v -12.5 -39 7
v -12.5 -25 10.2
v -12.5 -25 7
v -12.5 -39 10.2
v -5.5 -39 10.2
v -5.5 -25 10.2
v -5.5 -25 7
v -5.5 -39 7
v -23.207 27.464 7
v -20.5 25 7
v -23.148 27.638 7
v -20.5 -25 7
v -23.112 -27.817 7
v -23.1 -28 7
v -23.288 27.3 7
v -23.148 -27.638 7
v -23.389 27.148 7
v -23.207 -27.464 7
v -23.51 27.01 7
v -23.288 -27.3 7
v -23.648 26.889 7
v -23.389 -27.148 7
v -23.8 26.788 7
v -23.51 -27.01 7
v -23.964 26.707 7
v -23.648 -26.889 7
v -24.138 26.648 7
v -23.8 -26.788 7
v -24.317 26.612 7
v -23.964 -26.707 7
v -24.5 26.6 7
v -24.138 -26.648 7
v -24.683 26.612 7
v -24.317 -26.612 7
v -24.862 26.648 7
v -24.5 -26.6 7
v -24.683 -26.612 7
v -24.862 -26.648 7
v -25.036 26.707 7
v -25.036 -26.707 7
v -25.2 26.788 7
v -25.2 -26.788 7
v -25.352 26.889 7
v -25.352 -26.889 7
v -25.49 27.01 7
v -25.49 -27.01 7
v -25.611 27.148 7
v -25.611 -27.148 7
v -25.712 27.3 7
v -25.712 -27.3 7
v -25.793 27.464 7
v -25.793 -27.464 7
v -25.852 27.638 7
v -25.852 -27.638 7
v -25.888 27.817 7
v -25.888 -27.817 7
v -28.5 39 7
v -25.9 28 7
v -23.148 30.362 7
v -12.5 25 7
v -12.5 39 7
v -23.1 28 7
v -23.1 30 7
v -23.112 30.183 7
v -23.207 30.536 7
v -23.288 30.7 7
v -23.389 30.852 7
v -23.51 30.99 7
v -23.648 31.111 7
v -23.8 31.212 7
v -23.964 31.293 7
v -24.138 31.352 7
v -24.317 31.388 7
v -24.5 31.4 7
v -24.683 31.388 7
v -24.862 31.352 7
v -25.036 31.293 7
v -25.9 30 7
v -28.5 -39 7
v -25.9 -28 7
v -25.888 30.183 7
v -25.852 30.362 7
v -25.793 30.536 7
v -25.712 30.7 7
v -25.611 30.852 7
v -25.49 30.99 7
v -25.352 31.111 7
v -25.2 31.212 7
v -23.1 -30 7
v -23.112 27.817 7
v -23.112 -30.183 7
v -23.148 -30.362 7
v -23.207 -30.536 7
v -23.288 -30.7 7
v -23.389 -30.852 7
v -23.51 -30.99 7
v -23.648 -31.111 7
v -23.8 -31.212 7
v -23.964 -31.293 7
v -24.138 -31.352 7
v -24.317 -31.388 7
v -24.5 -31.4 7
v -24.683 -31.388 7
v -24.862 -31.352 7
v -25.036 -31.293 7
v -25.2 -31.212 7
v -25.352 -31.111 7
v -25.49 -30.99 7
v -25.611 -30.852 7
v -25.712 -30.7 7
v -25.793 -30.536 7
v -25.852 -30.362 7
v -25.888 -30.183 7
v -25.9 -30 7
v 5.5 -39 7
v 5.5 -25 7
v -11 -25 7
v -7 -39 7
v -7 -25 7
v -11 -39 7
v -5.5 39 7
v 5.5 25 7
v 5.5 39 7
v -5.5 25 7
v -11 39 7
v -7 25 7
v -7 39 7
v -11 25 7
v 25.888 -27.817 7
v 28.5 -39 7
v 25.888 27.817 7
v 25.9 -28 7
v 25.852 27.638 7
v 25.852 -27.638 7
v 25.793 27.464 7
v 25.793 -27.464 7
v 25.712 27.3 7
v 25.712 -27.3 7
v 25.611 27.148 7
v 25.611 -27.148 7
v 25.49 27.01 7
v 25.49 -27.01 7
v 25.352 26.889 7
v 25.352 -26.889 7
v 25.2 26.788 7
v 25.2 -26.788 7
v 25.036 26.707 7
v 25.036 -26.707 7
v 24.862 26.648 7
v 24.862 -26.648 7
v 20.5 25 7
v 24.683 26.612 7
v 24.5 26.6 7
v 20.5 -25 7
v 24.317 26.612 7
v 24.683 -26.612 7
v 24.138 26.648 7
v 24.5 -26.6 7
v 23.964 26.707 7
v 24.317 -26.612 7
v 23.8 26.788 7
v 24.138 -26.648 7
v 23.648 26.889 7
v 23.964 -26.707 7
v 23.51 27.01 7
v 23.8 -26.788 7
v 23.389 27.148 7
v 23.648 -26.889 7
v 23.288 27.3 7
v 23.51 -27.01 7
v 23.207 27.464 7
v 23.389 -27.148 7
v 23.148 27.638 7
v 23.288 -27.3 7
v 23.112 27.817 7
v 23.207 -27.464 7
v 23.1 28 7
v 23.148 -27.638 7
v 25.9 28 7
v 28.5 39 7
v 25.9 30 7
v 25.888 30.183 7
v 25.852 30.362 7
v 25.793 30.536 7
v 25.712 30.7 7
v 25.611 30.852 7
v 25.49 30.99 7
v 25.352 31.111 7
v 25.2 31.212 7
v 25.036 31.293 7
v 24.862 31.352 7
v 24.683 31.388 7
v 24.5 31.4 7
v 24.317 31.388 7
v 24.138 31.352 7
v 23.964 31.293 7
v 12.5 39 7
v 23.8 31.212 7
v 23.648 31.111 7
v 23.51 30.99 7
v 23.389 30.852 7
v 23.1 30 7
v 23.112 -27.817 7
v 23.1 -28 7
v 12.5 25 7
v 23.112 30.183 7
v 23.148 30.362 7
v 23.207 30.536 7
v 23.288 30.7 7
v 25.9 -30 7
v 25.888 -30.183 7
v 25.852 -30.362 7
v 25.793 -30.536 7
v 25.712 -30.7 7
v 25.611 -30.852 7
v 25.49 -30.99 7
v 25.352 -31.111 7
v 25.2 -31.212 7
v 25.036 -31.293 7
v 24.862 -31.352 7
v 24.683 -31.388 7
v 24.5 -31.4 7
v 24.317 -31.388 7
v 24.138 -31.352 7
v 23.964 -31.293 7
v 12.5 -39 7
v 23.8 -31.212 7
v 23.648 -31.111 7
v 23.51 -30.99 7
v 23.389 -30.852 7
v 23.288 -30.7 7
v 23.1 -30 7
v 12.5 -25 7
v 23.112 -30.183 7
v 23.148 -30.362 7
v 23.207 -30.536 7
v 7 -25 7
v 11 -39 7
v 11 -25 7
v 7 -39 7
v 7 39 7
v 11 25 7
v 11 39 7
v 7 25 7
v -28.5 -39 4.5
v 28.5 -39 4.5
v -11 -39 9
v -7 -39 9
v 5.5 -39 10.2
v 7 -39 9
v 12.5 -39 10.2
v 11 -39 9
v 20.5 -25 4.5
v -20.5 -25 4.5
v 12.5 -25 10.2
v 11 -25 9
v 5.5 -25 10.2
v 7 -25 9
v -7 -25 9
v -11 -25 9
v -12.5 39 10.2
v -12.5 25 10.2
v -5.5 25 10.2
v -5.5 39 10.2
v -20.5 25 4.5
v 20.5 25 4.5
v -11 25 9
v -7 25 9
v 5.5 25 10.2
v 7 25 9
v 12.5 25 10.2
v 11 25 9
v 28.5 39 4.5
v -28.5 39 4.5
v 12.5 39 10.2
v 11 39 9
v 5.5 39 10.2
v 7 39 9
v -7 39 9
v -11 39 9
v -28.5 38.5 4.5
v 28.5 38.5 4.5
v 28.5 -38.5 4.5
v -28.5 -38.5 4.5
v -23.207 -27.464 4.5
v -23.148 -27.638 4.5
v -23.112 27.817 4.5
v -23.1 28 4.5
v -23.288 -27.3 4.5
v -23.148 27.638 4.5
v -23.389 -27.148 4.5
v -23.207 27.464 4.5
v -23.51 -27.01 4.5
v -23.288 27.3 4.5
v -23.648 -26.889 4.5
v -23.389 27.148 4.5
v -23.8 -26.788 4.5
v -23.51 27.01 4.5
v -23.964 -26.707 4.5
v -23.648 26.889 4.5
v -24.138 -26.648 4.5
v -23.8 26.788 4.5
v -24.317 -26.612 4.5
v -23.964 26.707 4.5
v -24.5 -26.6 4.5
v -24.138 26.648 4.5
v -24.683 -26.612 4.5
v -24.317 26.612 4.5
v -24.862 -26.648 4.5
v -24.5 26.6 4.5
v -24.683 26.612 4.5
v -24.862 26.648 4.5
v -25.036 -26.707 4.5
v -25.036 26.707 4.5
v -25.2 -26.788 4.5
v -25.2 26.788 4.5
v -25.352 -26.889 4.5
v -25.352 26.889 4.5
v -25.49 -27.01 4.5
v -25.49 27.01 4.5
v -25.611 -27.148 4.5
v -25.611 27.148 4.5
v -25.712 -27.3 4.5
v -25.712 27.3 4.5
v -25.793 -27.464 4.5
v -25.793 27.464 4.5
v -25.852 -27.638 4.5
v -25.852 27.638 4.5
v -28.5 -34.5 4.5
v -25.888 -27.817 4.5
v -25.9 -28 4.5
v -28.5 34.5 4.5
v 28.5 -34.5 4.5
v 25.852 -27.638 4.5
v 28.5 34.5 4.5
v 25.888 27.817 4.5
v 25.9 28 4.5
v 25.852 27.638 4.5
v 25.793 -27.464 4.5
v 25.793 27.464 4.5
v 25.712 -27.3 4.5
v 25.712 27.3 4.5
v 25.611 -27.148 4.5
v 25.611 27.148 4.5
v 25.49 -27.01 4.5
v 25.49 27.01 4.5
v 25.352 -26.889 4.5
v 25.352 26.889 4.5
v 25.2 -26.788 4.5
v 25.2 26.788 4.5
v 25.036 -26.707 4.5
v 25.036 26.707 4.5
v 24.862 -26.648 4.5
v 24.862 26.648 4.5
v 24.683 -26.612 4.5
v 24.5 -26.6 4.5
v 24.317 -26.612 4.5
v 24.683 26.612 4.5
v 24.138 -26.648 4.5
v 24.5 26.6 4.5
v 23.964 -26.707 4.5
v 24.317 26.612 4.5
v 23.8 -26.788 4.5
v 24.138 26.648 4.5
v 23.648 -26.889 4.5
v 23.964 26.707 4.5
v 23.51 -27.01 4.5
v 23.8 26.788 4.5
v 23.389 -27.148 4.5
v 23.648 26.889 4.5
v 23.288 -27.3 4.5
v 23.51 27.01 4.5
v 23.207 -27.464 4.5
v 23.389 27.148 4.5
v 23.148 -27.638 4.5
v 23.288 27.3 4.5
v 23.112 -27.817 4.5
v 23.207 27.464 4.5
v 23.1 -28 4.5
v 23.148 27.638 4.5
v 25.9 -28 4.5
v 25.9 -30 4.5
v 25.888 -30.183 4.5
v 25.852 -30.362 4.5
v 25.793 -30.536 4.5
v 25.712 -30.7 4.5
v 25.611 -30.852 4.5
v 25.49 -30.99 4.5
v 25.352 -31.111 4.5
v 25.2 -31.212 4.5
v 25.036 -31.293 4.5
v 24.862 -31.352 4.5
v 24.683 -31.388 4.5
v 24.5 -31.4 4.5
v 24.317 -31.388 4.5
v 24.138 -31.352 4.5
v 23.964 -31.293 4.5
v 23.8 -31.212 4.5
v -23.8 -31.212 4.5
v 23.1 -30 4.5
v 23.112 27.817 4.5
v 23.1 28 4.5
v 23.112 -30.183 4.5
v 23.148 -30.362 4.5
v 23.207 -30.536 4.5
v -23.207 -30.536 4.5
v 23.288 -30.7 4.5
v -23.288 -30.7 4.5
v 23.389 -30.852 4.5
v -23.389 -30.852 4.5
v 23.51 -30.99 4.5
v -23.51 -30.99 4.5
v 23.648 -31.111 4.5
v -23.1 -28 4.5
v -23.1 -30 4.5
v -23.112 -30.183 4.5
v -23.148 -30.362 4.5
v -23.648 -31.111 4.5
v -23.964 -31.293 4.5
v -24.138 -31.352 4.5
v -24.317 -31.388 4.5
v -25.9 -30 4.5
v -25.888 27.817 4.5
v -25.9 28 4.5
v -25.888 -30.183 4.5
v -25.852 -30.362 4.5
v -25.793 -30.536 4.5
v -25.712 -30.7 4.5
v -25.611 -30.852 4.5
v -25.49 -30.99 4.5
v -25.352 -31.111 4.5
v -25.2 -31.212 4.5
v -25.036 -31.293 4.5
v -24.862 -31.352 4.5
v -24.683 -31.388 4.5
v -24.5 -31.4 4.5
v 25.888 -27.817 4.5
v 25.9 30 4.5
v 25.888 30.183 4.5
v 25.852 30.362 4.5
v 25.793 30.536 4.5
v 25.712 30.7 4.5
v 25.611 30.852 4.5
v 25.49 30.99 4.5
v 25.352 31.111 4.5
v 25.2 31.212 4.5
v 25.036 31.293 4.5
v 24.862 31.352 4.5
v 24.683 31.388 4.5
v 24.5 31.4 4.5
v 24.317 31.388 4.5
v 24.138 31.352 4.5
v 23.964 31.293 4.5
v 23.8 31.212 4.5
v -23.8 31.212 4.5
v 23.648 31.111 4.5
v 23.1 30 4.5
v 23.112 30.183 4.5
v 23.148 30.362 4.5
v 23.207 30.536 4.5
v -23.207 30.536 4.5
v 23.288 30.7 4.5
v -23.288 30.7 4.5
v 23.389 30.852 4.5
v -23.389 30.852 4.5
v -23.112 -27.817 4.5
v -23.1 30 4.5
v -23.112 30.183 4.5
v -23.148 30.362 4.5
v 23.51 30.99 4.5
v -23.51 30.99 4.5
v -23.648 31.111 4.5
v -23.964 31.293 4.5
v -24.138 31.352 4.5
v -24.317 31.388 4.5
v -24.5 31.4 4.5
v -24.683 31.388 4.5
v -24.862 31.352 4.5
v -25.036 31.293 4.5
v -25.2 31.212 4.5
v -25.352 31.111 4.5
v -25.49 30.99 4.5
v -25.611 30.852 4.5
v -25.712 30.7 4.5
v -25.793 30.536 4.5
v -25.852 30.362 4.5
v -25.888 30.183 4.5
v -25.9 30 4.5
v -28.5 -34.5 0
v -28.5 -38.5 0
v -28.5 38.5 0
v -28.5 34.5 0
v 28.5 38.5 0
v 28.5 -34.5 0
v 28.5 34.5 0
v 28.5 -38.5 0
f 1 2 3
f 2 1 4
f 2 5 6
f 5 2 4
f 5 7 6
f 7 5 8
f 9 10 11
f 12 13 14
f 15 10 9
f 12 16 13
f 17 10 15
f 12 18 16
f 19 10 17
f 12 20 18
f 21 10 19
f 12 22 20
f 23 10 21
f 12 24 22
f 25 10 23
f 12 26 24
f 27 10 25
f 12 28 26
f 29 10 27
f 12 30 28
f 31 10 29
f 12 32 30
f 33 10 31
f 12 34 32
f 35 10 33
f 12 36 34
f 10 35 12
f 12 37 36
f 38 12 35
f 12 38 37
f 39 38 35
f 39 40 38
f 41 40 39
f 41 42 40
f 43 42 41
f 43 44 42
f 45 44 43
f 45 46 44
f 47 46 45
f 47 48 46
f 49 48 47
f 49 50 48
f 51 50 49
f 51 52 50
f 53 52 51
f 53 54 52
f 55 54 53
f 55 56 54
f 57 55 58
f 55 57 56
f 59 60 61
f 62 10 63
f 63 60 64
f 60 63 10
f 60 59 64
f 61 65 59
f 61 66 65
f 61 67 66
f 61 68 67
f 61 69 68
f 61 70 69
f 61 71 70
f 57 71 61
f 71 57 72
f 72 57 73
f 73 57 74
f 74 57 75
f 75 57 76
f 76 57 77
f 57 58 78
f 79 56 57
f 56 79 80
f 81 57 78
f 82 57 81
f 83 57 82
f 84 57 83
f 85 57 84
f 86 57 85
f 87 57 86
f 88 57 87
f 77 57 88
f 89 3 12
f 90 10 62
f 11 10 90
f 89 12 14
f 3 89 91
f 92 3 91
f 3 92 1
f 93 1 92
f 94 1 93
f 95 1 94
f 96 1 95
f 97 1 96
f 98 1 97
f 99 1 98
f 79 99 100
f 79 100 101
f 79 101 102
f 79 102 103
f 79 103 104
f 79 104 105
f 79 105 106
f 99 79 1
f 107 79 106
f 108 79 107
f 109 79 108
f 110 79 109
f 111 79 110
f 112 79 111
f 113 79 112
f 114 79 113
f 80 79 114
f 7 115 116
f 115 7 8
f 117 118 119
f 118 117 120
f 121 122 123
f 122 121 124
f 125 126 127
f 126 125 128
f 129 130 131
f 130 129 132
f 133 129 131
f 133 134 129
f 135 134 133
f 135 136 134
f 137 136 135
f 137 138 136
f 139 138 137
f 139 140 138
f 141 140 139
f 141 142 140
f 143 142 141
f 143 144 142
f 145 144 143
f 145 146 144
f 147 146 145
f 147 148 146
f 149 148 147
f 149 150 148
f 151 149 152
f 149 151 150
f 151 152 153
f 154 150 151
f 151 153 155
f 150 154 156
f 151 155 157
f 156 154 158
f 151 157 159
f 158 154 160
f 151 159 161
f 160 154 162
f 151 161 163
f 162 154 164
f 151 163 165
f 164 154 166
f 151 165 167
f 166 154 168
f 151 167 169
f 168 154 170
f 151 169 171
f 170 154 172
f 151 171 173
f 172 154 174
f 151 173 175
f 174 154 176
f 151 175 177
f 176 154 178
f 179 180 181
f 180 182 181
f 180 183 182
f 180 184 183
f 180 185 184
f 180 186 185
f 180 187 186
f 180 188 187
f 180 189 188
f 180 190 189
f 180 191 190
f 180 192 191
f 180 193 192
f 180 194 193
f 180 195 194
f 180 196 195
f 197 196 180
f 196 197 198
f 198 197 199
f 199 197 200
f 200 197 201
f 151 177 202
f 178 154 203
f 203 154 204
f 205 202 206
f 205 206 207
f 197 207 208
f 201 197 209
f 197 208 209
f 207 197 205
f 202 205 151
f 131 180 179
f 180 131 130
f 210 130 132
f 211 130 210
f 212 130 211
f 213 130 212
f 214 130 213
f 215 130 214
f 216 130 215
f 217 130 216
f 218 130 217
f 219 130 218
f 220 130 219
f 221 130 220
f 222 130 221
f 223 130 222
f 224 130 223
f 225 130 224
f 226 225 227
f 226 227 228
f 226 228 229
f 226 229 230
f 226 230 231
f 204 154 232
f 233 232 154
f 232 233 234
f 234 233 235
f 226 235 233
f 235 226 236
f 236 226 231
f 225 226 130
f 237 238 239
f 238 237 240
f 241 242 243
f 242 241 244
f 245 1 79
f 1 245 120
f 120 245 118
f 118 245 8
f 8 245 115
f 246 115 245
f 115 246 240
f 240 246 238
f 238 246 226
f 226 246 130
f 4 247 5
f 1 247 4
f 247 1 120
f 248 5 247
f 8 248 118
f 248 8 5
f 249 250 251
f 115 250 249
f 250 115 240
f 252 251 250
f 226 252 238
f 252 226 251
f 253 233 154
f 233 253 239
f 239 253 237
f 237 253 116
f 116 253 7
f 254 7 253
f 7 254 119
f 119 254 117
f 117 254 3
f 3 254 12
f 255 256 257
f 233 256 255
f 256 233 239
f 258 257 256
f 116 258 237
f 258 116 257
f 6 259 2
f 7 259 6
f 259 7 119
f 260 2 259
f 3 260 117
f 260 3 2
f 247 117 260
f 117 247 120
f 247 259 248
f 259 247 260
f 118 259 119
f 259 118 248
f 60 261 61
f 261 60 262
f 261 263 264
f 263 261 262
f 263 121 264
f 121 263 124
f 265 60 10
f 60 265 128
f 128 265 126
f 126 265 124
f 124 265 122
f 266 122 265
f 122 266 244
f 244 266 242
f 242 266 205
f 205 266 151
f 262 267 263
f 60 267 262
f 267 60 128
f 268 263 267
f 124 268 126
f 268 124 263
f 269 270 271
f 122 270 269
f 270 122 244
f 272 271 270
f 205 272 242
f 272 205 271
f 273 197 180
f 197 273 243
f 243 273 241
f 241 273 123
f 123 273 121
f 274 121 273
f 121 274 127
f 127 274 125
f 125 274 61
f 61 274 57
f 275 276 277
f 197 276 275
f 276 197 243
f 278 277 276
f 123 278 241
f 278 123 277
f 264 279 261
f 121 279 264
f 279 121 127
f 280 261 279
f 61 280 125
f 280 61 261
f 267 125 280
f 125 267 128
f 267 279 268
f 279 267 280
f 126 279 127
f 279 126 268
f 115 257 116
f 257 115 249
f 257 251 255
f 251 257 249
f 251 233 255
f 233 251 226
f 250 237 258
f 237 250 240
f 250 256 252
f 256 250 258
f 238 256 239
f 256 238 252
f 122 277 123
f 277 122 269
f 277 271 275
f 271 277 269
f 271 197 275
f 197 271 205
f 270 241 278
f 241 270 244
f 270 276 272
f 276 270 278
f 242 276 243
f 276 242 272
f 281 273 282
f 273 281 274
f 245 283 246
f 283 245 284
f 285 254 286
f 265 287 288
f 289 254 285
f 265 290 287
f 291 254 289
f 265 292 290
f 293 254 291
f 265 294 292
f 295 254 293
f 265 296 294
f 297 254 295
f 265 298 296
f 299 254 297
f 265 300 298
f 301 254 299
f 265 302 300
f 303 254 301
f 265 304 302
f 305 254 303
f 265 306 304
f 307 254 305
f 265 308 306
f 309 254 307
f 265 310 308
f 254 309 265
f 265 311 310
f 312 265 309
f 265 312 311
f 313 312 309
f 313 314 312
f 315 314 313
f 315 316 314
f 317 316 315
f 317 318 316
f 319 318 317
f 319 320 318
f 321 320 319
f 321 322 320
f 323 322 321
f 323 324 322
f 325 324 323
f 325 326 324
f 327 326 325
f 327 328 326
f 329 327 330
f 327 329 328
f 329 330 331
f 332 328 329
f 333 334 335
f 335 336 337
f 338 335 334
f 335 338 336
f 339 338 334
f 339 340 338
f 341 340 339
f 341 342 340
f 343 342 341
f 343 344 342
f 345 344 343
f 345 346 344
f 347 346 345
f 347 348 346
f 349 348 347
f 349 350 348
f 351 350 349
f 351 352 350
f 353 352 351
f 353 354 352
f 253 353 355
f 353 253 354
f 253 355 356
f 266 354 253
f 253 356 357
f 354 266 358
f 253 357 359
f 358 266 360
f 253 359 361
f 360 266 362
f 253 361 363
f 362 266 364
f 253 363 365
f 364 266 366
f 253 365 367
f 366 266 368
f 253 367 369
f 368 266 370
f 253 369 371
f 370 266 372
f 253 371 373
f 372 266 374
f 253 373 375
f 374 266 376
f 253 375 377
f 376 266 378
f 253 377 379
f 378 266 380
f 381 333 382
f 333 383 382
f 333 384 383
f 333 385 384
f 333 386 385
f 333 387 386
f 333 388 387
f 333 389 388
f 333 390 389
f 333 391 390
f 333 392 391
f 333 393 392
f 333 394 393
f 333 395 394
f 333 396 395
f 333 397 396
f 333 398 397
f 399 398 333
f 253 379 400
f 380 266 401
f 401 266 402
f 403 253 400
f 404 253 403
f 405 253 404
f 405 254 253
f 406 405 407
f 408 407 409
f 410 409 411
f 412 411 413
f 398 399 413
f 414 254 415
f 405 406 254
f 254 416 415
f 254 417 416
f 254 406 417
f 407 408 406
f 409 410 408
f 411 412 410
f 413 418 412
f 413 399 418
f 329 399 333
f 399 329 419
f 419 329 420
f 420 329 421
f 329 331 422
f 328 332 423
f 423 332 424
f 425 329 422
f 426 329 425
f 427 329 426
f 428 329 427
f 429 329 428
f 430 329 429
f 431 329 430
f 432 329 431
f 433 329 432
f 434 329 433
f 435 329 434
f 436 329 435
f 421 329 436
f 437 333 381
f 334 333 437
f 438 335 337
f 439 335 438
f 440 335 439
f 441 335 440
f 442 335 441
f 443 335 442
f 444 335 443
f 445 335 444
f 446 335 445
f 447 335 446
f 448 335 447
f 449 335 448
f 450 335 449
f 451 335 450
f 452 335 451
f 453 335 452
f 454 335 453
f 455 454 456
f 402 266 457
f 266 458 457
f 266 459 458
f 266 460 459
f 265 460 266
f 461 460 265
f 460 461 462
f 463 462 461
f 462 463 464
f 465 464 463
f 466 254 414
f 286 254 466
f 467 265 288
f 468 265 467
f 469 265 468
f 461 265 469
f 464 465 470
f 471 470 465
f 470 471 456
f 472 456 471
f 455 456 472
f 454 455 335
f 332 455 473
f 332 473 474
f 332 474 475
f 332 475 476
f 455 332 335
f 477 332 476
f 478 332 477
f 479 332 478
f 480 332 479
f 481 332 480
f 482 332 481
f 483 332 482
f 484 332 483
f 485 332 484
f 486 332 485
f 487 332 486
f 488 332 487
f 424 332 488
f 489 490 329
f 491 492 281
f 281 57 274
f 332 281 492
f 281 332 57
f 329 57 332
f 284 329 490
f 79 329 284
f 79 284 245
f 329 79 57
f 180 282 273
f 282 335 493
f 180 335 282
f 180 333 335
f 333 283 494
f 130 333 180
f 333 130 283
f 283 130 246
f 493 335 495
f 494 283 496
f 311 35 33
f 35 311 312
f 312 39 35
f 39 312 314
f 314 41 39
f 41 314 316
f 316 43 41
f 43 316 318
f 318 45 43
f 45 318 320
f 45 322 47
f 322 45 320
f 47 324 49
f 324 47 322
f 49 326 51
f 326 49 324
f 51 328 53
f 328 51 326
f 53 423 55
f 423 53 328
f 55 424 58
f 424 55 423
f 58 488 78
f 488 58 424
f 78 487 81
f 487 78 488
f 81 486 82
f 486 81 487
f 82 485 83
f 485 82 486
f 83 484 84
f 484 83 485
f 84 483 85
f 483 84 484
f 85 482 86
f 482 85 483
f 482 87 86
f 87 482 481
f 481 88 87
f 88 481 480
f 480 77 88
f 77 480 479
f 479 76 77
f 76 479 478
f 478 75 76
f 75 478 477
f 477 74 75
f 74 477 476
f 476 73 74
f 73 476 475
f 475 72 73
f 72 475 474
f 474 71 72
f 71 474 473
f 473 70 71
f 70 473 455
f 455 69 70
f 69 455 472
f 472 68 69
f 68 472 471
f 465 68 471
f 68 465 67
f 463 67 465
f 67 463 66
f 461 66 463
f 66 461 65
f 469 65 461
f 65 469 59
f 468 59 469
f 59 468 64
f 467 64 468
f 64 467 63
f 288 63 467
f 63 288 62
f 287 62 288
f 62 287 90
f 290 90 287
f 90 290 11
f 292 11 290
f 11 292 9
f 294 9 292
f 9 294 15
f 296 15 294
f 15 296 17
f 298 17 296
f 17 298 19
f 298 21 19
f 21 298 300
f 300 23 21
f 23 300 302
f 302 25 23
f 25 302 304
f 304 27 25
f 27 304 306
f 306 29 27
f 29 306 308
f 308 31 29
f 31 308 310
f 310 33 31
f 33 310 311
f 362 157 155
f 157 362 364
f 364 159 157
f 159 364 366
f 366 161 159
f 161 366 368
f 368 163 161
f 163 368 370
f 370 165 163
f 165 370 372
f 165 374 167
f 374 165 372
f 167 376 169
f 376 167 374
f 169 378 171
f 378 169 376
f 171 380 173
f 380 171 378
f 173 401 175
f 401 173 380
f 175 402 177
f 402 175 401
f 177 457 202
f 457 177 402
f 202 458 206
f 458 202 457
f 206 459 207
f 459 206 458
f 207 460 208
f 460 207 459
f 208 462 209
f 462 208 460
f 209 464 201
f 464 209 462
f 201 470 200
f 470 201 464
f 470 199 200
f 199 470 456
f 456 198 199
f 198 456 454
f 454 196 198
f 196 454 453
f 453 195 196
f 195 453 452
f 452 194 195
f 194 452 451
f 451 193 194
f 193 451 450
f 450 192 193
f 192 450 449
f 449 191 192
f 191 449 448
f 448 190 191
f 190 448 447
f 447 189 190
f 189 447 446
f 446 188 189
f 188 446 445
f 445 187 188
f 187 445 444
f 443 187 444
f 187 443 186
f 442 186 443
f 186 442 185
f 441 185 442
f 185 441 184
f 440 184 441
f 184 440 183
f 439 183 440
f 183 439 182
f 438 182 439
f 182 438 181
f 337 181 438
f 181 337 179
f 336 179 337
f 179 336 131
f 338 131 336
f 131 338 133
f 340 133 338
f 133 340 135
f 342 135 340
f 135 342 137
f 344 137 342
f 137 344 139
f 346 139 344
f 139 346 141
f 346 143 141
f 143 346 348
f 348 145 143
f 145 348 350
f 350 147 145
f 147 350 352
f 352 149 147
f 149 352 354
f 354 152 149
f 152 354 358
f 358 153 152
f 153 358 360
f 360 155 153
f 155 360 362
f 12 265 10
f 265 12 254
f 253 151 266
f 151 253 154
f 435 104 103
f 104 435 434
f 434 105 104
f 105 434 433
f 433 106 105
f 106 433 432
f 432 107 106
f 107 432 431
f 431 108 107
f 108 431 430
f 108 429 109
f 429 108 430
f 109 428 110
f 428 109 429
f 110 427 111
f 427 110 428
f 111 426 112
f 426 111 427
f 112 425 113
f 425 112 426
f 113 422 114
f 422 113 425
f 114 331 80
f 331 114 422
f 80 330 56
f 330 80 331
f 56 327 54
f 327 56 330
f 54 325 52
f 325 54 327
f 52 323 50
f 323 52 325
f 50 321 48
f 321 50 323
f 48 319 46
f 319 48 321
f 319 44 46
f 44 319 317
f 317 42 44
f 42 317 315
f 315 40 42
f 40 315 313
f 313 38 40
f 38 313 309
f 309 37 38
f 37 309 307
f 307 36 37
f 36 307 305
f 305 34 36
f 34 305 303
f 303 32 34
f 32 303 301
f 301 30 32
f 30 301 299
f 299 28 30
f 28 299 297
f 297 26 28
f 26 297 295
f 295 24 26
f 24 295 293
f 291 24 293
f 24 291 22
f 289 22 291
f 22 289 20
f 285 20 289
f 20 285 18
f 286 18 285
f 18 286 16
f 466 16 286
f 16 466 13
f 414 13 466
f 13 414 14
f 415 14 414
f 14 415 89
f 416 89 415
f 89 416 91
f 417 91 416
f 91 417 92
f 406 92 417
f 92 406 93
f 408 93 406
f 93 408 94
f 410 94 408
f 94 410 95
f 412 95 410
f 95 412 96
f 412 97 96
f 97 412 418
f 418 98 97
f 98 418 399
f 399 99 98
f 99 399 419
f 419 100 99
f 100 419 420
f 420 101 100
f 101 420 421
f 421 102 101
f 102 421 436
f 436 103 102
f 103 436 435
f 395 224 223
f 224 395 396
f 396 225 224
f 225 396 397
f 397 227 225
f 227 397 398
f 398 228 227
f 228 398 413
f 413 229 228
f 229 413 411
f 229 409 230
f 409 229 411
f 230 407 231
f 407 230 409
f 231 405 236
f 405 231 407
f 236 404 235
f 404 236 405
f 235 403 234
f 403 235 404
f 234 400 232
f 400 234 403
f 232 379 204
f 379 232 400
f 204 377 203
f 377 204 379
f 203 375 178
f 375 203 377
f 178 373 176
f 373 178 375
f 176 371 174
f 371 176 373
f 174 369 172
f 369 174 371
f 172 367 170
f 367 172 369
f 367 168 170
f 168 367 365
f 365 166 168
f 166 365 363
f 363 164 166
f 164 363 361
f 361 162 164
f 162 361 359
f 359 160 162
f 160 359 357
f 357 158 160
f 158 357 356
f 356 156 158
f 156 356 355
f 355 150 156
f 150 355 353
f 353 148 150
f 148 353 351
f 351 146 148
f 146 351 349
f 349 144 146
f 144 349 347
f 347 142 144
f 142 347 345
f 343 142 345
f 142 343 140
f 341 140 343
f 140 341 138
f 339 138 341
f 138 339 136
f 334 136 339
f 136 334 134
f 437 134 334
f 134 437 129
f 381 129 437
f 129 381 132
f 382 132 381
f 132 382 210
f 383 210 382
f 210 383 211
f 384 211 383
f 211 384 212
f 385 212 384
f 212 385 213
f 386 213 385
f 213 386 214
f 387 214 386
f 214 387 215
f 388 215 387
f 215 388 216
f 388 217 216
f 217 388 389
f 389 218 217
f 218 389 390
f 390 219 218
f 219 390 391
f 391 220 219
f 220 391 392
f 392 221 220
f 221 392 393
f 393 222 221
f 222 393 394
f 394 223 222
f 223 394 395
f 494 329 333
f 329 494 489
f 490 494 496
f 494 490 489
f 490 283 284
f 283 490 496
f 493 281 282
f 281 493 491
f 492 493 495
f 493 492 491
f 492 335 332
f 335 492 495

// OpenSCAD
// B.G.D Pi 5 carrier + frame-lashing FIT PROTOTYPE, mm, 2026-09-22.
// OpenSCAD source. Compilation status is maintained in the handoff.
// Pi reference: https://datasheets.raspberrypi.com/rpi5/raspberry-pi-5-mechanical-drawing.pdf
// X = across board, Y = along board; origin = mounting-pattern center.
// This is NOT the asymmetric PCB-outline center.
// Broad feet/tie tunnels use approximate photo-derived frame ranges.
// No flight qualification; buckle heads go BELOW the frame plate.

pitch_x = 49;          // documented mounting centers
pitch_y = 58;
rail = 8;             // draft structural choice, not load-qualified
thickness = 2.5;
clearance_d = 2.8;     // trial clearance for M2.5, tune to physical print
travel_y = 2;         // total slot adjustment: +/-1 mm from nominal
foot_outer_y = 39;    // photo-based choice, support envelope +/-39
tie_x = 9;           // two flexible lashing routes per end, X +/-9
tie_clear_width = 4; // ordered ties nominal 3 wide; 1 total allowance
tie_clear_height = 2;// assumed body clearance, actual tie passage TBD
guide_wall = 1.5;
guide_roof = 1.2;
foot_lift = 4.5;      // 6 mm male thread - 2.5 mm plate + 1 mm nominal gap
foot_depth_contact = 4;
$fn = 48;

outer_x = pitch_x + rail;
outer_y = pitch_y + rail;
inner_x = pitch_x - rail;
inner_y = pitch_y - rail;

assert(pitch_x > rail && pitch_y > rail && thickness > 0);
assert(clearance_d > 2.5 && travel_y >= 0);
assert(rail > clearance_d + travel_y, "Slot must remain inside rail");
assert(foot_outer_y >= outer_y/2);
assert(tie_clear_width > 3 && tie_clear_height > 0);
assert(tie_x - tie_clear_width/2 - guide_wall > 0);
assert(tie_x + tie_clear_width/2 + guide_wall < pitch_x/2 - clearance_d/2,
       "Tie guides must not cover Pi standoff holes");

// One continuous base: open ring plus broad end extensions.
translate([0,0,foot_lift]) {
linear_extrude(height = thickness)
    difference() {
        square([outer_x, 2*foot_outer_y], center = true);
        square([inner_x, inner_y], center = true);
        // Feet and ring share width; no fragile projecting side tabs.
        for (x = [-pitch_x/2, pitch_x/2])
            for (y = [-pitch_y/2, pitch_y/2])
                hull() {
                    translate([x, y-travel_y/2]) circle(d = clearance_d);
                    translate([x, y+travel_y/2]) circle(d = clearance_d);
                }
    }

// Four tunnels physically capture each tie along the top of an end foot.
// Feed tie along Y, down outer frame slot, under plate web, up inner slot.
// Tunnel ends are open; no exact frame hole coincidence is required.
foot_depth = foot_outer_y - inner_y/2;
for (x = [-tie_x, tie_x])
    for (s = [-1, 1])
        translate([x, s*(inner_y/2 + foot_depth/2), thickness])
            difference() {
                translate([0, 0, (tie_clear_height+guide_roof)/2])
                    cube([tie_clear_width+2*guide_wall, foot_depth,
                          tie_clear_height+guide_roof], center=true);
                translate([0, 0, tie_clear_height/2-0.01])
                    cube([tie_clear_width, foot_depth+0.2,
                          tie_clear_height+0.02], center=true);
            }
}

// Two bearing rails lift all four standoff threads/nuts off the frame.
// Contact rails are outside Y +/-29 standoff positions; tie passages remain open.
for (s=[-1,1])
    translate([-outer_x/2, s*36.5-foot_depth_contact/2, 0])
        cube([outer_x, foot_depth_contact, foot_lift+0.05]);
